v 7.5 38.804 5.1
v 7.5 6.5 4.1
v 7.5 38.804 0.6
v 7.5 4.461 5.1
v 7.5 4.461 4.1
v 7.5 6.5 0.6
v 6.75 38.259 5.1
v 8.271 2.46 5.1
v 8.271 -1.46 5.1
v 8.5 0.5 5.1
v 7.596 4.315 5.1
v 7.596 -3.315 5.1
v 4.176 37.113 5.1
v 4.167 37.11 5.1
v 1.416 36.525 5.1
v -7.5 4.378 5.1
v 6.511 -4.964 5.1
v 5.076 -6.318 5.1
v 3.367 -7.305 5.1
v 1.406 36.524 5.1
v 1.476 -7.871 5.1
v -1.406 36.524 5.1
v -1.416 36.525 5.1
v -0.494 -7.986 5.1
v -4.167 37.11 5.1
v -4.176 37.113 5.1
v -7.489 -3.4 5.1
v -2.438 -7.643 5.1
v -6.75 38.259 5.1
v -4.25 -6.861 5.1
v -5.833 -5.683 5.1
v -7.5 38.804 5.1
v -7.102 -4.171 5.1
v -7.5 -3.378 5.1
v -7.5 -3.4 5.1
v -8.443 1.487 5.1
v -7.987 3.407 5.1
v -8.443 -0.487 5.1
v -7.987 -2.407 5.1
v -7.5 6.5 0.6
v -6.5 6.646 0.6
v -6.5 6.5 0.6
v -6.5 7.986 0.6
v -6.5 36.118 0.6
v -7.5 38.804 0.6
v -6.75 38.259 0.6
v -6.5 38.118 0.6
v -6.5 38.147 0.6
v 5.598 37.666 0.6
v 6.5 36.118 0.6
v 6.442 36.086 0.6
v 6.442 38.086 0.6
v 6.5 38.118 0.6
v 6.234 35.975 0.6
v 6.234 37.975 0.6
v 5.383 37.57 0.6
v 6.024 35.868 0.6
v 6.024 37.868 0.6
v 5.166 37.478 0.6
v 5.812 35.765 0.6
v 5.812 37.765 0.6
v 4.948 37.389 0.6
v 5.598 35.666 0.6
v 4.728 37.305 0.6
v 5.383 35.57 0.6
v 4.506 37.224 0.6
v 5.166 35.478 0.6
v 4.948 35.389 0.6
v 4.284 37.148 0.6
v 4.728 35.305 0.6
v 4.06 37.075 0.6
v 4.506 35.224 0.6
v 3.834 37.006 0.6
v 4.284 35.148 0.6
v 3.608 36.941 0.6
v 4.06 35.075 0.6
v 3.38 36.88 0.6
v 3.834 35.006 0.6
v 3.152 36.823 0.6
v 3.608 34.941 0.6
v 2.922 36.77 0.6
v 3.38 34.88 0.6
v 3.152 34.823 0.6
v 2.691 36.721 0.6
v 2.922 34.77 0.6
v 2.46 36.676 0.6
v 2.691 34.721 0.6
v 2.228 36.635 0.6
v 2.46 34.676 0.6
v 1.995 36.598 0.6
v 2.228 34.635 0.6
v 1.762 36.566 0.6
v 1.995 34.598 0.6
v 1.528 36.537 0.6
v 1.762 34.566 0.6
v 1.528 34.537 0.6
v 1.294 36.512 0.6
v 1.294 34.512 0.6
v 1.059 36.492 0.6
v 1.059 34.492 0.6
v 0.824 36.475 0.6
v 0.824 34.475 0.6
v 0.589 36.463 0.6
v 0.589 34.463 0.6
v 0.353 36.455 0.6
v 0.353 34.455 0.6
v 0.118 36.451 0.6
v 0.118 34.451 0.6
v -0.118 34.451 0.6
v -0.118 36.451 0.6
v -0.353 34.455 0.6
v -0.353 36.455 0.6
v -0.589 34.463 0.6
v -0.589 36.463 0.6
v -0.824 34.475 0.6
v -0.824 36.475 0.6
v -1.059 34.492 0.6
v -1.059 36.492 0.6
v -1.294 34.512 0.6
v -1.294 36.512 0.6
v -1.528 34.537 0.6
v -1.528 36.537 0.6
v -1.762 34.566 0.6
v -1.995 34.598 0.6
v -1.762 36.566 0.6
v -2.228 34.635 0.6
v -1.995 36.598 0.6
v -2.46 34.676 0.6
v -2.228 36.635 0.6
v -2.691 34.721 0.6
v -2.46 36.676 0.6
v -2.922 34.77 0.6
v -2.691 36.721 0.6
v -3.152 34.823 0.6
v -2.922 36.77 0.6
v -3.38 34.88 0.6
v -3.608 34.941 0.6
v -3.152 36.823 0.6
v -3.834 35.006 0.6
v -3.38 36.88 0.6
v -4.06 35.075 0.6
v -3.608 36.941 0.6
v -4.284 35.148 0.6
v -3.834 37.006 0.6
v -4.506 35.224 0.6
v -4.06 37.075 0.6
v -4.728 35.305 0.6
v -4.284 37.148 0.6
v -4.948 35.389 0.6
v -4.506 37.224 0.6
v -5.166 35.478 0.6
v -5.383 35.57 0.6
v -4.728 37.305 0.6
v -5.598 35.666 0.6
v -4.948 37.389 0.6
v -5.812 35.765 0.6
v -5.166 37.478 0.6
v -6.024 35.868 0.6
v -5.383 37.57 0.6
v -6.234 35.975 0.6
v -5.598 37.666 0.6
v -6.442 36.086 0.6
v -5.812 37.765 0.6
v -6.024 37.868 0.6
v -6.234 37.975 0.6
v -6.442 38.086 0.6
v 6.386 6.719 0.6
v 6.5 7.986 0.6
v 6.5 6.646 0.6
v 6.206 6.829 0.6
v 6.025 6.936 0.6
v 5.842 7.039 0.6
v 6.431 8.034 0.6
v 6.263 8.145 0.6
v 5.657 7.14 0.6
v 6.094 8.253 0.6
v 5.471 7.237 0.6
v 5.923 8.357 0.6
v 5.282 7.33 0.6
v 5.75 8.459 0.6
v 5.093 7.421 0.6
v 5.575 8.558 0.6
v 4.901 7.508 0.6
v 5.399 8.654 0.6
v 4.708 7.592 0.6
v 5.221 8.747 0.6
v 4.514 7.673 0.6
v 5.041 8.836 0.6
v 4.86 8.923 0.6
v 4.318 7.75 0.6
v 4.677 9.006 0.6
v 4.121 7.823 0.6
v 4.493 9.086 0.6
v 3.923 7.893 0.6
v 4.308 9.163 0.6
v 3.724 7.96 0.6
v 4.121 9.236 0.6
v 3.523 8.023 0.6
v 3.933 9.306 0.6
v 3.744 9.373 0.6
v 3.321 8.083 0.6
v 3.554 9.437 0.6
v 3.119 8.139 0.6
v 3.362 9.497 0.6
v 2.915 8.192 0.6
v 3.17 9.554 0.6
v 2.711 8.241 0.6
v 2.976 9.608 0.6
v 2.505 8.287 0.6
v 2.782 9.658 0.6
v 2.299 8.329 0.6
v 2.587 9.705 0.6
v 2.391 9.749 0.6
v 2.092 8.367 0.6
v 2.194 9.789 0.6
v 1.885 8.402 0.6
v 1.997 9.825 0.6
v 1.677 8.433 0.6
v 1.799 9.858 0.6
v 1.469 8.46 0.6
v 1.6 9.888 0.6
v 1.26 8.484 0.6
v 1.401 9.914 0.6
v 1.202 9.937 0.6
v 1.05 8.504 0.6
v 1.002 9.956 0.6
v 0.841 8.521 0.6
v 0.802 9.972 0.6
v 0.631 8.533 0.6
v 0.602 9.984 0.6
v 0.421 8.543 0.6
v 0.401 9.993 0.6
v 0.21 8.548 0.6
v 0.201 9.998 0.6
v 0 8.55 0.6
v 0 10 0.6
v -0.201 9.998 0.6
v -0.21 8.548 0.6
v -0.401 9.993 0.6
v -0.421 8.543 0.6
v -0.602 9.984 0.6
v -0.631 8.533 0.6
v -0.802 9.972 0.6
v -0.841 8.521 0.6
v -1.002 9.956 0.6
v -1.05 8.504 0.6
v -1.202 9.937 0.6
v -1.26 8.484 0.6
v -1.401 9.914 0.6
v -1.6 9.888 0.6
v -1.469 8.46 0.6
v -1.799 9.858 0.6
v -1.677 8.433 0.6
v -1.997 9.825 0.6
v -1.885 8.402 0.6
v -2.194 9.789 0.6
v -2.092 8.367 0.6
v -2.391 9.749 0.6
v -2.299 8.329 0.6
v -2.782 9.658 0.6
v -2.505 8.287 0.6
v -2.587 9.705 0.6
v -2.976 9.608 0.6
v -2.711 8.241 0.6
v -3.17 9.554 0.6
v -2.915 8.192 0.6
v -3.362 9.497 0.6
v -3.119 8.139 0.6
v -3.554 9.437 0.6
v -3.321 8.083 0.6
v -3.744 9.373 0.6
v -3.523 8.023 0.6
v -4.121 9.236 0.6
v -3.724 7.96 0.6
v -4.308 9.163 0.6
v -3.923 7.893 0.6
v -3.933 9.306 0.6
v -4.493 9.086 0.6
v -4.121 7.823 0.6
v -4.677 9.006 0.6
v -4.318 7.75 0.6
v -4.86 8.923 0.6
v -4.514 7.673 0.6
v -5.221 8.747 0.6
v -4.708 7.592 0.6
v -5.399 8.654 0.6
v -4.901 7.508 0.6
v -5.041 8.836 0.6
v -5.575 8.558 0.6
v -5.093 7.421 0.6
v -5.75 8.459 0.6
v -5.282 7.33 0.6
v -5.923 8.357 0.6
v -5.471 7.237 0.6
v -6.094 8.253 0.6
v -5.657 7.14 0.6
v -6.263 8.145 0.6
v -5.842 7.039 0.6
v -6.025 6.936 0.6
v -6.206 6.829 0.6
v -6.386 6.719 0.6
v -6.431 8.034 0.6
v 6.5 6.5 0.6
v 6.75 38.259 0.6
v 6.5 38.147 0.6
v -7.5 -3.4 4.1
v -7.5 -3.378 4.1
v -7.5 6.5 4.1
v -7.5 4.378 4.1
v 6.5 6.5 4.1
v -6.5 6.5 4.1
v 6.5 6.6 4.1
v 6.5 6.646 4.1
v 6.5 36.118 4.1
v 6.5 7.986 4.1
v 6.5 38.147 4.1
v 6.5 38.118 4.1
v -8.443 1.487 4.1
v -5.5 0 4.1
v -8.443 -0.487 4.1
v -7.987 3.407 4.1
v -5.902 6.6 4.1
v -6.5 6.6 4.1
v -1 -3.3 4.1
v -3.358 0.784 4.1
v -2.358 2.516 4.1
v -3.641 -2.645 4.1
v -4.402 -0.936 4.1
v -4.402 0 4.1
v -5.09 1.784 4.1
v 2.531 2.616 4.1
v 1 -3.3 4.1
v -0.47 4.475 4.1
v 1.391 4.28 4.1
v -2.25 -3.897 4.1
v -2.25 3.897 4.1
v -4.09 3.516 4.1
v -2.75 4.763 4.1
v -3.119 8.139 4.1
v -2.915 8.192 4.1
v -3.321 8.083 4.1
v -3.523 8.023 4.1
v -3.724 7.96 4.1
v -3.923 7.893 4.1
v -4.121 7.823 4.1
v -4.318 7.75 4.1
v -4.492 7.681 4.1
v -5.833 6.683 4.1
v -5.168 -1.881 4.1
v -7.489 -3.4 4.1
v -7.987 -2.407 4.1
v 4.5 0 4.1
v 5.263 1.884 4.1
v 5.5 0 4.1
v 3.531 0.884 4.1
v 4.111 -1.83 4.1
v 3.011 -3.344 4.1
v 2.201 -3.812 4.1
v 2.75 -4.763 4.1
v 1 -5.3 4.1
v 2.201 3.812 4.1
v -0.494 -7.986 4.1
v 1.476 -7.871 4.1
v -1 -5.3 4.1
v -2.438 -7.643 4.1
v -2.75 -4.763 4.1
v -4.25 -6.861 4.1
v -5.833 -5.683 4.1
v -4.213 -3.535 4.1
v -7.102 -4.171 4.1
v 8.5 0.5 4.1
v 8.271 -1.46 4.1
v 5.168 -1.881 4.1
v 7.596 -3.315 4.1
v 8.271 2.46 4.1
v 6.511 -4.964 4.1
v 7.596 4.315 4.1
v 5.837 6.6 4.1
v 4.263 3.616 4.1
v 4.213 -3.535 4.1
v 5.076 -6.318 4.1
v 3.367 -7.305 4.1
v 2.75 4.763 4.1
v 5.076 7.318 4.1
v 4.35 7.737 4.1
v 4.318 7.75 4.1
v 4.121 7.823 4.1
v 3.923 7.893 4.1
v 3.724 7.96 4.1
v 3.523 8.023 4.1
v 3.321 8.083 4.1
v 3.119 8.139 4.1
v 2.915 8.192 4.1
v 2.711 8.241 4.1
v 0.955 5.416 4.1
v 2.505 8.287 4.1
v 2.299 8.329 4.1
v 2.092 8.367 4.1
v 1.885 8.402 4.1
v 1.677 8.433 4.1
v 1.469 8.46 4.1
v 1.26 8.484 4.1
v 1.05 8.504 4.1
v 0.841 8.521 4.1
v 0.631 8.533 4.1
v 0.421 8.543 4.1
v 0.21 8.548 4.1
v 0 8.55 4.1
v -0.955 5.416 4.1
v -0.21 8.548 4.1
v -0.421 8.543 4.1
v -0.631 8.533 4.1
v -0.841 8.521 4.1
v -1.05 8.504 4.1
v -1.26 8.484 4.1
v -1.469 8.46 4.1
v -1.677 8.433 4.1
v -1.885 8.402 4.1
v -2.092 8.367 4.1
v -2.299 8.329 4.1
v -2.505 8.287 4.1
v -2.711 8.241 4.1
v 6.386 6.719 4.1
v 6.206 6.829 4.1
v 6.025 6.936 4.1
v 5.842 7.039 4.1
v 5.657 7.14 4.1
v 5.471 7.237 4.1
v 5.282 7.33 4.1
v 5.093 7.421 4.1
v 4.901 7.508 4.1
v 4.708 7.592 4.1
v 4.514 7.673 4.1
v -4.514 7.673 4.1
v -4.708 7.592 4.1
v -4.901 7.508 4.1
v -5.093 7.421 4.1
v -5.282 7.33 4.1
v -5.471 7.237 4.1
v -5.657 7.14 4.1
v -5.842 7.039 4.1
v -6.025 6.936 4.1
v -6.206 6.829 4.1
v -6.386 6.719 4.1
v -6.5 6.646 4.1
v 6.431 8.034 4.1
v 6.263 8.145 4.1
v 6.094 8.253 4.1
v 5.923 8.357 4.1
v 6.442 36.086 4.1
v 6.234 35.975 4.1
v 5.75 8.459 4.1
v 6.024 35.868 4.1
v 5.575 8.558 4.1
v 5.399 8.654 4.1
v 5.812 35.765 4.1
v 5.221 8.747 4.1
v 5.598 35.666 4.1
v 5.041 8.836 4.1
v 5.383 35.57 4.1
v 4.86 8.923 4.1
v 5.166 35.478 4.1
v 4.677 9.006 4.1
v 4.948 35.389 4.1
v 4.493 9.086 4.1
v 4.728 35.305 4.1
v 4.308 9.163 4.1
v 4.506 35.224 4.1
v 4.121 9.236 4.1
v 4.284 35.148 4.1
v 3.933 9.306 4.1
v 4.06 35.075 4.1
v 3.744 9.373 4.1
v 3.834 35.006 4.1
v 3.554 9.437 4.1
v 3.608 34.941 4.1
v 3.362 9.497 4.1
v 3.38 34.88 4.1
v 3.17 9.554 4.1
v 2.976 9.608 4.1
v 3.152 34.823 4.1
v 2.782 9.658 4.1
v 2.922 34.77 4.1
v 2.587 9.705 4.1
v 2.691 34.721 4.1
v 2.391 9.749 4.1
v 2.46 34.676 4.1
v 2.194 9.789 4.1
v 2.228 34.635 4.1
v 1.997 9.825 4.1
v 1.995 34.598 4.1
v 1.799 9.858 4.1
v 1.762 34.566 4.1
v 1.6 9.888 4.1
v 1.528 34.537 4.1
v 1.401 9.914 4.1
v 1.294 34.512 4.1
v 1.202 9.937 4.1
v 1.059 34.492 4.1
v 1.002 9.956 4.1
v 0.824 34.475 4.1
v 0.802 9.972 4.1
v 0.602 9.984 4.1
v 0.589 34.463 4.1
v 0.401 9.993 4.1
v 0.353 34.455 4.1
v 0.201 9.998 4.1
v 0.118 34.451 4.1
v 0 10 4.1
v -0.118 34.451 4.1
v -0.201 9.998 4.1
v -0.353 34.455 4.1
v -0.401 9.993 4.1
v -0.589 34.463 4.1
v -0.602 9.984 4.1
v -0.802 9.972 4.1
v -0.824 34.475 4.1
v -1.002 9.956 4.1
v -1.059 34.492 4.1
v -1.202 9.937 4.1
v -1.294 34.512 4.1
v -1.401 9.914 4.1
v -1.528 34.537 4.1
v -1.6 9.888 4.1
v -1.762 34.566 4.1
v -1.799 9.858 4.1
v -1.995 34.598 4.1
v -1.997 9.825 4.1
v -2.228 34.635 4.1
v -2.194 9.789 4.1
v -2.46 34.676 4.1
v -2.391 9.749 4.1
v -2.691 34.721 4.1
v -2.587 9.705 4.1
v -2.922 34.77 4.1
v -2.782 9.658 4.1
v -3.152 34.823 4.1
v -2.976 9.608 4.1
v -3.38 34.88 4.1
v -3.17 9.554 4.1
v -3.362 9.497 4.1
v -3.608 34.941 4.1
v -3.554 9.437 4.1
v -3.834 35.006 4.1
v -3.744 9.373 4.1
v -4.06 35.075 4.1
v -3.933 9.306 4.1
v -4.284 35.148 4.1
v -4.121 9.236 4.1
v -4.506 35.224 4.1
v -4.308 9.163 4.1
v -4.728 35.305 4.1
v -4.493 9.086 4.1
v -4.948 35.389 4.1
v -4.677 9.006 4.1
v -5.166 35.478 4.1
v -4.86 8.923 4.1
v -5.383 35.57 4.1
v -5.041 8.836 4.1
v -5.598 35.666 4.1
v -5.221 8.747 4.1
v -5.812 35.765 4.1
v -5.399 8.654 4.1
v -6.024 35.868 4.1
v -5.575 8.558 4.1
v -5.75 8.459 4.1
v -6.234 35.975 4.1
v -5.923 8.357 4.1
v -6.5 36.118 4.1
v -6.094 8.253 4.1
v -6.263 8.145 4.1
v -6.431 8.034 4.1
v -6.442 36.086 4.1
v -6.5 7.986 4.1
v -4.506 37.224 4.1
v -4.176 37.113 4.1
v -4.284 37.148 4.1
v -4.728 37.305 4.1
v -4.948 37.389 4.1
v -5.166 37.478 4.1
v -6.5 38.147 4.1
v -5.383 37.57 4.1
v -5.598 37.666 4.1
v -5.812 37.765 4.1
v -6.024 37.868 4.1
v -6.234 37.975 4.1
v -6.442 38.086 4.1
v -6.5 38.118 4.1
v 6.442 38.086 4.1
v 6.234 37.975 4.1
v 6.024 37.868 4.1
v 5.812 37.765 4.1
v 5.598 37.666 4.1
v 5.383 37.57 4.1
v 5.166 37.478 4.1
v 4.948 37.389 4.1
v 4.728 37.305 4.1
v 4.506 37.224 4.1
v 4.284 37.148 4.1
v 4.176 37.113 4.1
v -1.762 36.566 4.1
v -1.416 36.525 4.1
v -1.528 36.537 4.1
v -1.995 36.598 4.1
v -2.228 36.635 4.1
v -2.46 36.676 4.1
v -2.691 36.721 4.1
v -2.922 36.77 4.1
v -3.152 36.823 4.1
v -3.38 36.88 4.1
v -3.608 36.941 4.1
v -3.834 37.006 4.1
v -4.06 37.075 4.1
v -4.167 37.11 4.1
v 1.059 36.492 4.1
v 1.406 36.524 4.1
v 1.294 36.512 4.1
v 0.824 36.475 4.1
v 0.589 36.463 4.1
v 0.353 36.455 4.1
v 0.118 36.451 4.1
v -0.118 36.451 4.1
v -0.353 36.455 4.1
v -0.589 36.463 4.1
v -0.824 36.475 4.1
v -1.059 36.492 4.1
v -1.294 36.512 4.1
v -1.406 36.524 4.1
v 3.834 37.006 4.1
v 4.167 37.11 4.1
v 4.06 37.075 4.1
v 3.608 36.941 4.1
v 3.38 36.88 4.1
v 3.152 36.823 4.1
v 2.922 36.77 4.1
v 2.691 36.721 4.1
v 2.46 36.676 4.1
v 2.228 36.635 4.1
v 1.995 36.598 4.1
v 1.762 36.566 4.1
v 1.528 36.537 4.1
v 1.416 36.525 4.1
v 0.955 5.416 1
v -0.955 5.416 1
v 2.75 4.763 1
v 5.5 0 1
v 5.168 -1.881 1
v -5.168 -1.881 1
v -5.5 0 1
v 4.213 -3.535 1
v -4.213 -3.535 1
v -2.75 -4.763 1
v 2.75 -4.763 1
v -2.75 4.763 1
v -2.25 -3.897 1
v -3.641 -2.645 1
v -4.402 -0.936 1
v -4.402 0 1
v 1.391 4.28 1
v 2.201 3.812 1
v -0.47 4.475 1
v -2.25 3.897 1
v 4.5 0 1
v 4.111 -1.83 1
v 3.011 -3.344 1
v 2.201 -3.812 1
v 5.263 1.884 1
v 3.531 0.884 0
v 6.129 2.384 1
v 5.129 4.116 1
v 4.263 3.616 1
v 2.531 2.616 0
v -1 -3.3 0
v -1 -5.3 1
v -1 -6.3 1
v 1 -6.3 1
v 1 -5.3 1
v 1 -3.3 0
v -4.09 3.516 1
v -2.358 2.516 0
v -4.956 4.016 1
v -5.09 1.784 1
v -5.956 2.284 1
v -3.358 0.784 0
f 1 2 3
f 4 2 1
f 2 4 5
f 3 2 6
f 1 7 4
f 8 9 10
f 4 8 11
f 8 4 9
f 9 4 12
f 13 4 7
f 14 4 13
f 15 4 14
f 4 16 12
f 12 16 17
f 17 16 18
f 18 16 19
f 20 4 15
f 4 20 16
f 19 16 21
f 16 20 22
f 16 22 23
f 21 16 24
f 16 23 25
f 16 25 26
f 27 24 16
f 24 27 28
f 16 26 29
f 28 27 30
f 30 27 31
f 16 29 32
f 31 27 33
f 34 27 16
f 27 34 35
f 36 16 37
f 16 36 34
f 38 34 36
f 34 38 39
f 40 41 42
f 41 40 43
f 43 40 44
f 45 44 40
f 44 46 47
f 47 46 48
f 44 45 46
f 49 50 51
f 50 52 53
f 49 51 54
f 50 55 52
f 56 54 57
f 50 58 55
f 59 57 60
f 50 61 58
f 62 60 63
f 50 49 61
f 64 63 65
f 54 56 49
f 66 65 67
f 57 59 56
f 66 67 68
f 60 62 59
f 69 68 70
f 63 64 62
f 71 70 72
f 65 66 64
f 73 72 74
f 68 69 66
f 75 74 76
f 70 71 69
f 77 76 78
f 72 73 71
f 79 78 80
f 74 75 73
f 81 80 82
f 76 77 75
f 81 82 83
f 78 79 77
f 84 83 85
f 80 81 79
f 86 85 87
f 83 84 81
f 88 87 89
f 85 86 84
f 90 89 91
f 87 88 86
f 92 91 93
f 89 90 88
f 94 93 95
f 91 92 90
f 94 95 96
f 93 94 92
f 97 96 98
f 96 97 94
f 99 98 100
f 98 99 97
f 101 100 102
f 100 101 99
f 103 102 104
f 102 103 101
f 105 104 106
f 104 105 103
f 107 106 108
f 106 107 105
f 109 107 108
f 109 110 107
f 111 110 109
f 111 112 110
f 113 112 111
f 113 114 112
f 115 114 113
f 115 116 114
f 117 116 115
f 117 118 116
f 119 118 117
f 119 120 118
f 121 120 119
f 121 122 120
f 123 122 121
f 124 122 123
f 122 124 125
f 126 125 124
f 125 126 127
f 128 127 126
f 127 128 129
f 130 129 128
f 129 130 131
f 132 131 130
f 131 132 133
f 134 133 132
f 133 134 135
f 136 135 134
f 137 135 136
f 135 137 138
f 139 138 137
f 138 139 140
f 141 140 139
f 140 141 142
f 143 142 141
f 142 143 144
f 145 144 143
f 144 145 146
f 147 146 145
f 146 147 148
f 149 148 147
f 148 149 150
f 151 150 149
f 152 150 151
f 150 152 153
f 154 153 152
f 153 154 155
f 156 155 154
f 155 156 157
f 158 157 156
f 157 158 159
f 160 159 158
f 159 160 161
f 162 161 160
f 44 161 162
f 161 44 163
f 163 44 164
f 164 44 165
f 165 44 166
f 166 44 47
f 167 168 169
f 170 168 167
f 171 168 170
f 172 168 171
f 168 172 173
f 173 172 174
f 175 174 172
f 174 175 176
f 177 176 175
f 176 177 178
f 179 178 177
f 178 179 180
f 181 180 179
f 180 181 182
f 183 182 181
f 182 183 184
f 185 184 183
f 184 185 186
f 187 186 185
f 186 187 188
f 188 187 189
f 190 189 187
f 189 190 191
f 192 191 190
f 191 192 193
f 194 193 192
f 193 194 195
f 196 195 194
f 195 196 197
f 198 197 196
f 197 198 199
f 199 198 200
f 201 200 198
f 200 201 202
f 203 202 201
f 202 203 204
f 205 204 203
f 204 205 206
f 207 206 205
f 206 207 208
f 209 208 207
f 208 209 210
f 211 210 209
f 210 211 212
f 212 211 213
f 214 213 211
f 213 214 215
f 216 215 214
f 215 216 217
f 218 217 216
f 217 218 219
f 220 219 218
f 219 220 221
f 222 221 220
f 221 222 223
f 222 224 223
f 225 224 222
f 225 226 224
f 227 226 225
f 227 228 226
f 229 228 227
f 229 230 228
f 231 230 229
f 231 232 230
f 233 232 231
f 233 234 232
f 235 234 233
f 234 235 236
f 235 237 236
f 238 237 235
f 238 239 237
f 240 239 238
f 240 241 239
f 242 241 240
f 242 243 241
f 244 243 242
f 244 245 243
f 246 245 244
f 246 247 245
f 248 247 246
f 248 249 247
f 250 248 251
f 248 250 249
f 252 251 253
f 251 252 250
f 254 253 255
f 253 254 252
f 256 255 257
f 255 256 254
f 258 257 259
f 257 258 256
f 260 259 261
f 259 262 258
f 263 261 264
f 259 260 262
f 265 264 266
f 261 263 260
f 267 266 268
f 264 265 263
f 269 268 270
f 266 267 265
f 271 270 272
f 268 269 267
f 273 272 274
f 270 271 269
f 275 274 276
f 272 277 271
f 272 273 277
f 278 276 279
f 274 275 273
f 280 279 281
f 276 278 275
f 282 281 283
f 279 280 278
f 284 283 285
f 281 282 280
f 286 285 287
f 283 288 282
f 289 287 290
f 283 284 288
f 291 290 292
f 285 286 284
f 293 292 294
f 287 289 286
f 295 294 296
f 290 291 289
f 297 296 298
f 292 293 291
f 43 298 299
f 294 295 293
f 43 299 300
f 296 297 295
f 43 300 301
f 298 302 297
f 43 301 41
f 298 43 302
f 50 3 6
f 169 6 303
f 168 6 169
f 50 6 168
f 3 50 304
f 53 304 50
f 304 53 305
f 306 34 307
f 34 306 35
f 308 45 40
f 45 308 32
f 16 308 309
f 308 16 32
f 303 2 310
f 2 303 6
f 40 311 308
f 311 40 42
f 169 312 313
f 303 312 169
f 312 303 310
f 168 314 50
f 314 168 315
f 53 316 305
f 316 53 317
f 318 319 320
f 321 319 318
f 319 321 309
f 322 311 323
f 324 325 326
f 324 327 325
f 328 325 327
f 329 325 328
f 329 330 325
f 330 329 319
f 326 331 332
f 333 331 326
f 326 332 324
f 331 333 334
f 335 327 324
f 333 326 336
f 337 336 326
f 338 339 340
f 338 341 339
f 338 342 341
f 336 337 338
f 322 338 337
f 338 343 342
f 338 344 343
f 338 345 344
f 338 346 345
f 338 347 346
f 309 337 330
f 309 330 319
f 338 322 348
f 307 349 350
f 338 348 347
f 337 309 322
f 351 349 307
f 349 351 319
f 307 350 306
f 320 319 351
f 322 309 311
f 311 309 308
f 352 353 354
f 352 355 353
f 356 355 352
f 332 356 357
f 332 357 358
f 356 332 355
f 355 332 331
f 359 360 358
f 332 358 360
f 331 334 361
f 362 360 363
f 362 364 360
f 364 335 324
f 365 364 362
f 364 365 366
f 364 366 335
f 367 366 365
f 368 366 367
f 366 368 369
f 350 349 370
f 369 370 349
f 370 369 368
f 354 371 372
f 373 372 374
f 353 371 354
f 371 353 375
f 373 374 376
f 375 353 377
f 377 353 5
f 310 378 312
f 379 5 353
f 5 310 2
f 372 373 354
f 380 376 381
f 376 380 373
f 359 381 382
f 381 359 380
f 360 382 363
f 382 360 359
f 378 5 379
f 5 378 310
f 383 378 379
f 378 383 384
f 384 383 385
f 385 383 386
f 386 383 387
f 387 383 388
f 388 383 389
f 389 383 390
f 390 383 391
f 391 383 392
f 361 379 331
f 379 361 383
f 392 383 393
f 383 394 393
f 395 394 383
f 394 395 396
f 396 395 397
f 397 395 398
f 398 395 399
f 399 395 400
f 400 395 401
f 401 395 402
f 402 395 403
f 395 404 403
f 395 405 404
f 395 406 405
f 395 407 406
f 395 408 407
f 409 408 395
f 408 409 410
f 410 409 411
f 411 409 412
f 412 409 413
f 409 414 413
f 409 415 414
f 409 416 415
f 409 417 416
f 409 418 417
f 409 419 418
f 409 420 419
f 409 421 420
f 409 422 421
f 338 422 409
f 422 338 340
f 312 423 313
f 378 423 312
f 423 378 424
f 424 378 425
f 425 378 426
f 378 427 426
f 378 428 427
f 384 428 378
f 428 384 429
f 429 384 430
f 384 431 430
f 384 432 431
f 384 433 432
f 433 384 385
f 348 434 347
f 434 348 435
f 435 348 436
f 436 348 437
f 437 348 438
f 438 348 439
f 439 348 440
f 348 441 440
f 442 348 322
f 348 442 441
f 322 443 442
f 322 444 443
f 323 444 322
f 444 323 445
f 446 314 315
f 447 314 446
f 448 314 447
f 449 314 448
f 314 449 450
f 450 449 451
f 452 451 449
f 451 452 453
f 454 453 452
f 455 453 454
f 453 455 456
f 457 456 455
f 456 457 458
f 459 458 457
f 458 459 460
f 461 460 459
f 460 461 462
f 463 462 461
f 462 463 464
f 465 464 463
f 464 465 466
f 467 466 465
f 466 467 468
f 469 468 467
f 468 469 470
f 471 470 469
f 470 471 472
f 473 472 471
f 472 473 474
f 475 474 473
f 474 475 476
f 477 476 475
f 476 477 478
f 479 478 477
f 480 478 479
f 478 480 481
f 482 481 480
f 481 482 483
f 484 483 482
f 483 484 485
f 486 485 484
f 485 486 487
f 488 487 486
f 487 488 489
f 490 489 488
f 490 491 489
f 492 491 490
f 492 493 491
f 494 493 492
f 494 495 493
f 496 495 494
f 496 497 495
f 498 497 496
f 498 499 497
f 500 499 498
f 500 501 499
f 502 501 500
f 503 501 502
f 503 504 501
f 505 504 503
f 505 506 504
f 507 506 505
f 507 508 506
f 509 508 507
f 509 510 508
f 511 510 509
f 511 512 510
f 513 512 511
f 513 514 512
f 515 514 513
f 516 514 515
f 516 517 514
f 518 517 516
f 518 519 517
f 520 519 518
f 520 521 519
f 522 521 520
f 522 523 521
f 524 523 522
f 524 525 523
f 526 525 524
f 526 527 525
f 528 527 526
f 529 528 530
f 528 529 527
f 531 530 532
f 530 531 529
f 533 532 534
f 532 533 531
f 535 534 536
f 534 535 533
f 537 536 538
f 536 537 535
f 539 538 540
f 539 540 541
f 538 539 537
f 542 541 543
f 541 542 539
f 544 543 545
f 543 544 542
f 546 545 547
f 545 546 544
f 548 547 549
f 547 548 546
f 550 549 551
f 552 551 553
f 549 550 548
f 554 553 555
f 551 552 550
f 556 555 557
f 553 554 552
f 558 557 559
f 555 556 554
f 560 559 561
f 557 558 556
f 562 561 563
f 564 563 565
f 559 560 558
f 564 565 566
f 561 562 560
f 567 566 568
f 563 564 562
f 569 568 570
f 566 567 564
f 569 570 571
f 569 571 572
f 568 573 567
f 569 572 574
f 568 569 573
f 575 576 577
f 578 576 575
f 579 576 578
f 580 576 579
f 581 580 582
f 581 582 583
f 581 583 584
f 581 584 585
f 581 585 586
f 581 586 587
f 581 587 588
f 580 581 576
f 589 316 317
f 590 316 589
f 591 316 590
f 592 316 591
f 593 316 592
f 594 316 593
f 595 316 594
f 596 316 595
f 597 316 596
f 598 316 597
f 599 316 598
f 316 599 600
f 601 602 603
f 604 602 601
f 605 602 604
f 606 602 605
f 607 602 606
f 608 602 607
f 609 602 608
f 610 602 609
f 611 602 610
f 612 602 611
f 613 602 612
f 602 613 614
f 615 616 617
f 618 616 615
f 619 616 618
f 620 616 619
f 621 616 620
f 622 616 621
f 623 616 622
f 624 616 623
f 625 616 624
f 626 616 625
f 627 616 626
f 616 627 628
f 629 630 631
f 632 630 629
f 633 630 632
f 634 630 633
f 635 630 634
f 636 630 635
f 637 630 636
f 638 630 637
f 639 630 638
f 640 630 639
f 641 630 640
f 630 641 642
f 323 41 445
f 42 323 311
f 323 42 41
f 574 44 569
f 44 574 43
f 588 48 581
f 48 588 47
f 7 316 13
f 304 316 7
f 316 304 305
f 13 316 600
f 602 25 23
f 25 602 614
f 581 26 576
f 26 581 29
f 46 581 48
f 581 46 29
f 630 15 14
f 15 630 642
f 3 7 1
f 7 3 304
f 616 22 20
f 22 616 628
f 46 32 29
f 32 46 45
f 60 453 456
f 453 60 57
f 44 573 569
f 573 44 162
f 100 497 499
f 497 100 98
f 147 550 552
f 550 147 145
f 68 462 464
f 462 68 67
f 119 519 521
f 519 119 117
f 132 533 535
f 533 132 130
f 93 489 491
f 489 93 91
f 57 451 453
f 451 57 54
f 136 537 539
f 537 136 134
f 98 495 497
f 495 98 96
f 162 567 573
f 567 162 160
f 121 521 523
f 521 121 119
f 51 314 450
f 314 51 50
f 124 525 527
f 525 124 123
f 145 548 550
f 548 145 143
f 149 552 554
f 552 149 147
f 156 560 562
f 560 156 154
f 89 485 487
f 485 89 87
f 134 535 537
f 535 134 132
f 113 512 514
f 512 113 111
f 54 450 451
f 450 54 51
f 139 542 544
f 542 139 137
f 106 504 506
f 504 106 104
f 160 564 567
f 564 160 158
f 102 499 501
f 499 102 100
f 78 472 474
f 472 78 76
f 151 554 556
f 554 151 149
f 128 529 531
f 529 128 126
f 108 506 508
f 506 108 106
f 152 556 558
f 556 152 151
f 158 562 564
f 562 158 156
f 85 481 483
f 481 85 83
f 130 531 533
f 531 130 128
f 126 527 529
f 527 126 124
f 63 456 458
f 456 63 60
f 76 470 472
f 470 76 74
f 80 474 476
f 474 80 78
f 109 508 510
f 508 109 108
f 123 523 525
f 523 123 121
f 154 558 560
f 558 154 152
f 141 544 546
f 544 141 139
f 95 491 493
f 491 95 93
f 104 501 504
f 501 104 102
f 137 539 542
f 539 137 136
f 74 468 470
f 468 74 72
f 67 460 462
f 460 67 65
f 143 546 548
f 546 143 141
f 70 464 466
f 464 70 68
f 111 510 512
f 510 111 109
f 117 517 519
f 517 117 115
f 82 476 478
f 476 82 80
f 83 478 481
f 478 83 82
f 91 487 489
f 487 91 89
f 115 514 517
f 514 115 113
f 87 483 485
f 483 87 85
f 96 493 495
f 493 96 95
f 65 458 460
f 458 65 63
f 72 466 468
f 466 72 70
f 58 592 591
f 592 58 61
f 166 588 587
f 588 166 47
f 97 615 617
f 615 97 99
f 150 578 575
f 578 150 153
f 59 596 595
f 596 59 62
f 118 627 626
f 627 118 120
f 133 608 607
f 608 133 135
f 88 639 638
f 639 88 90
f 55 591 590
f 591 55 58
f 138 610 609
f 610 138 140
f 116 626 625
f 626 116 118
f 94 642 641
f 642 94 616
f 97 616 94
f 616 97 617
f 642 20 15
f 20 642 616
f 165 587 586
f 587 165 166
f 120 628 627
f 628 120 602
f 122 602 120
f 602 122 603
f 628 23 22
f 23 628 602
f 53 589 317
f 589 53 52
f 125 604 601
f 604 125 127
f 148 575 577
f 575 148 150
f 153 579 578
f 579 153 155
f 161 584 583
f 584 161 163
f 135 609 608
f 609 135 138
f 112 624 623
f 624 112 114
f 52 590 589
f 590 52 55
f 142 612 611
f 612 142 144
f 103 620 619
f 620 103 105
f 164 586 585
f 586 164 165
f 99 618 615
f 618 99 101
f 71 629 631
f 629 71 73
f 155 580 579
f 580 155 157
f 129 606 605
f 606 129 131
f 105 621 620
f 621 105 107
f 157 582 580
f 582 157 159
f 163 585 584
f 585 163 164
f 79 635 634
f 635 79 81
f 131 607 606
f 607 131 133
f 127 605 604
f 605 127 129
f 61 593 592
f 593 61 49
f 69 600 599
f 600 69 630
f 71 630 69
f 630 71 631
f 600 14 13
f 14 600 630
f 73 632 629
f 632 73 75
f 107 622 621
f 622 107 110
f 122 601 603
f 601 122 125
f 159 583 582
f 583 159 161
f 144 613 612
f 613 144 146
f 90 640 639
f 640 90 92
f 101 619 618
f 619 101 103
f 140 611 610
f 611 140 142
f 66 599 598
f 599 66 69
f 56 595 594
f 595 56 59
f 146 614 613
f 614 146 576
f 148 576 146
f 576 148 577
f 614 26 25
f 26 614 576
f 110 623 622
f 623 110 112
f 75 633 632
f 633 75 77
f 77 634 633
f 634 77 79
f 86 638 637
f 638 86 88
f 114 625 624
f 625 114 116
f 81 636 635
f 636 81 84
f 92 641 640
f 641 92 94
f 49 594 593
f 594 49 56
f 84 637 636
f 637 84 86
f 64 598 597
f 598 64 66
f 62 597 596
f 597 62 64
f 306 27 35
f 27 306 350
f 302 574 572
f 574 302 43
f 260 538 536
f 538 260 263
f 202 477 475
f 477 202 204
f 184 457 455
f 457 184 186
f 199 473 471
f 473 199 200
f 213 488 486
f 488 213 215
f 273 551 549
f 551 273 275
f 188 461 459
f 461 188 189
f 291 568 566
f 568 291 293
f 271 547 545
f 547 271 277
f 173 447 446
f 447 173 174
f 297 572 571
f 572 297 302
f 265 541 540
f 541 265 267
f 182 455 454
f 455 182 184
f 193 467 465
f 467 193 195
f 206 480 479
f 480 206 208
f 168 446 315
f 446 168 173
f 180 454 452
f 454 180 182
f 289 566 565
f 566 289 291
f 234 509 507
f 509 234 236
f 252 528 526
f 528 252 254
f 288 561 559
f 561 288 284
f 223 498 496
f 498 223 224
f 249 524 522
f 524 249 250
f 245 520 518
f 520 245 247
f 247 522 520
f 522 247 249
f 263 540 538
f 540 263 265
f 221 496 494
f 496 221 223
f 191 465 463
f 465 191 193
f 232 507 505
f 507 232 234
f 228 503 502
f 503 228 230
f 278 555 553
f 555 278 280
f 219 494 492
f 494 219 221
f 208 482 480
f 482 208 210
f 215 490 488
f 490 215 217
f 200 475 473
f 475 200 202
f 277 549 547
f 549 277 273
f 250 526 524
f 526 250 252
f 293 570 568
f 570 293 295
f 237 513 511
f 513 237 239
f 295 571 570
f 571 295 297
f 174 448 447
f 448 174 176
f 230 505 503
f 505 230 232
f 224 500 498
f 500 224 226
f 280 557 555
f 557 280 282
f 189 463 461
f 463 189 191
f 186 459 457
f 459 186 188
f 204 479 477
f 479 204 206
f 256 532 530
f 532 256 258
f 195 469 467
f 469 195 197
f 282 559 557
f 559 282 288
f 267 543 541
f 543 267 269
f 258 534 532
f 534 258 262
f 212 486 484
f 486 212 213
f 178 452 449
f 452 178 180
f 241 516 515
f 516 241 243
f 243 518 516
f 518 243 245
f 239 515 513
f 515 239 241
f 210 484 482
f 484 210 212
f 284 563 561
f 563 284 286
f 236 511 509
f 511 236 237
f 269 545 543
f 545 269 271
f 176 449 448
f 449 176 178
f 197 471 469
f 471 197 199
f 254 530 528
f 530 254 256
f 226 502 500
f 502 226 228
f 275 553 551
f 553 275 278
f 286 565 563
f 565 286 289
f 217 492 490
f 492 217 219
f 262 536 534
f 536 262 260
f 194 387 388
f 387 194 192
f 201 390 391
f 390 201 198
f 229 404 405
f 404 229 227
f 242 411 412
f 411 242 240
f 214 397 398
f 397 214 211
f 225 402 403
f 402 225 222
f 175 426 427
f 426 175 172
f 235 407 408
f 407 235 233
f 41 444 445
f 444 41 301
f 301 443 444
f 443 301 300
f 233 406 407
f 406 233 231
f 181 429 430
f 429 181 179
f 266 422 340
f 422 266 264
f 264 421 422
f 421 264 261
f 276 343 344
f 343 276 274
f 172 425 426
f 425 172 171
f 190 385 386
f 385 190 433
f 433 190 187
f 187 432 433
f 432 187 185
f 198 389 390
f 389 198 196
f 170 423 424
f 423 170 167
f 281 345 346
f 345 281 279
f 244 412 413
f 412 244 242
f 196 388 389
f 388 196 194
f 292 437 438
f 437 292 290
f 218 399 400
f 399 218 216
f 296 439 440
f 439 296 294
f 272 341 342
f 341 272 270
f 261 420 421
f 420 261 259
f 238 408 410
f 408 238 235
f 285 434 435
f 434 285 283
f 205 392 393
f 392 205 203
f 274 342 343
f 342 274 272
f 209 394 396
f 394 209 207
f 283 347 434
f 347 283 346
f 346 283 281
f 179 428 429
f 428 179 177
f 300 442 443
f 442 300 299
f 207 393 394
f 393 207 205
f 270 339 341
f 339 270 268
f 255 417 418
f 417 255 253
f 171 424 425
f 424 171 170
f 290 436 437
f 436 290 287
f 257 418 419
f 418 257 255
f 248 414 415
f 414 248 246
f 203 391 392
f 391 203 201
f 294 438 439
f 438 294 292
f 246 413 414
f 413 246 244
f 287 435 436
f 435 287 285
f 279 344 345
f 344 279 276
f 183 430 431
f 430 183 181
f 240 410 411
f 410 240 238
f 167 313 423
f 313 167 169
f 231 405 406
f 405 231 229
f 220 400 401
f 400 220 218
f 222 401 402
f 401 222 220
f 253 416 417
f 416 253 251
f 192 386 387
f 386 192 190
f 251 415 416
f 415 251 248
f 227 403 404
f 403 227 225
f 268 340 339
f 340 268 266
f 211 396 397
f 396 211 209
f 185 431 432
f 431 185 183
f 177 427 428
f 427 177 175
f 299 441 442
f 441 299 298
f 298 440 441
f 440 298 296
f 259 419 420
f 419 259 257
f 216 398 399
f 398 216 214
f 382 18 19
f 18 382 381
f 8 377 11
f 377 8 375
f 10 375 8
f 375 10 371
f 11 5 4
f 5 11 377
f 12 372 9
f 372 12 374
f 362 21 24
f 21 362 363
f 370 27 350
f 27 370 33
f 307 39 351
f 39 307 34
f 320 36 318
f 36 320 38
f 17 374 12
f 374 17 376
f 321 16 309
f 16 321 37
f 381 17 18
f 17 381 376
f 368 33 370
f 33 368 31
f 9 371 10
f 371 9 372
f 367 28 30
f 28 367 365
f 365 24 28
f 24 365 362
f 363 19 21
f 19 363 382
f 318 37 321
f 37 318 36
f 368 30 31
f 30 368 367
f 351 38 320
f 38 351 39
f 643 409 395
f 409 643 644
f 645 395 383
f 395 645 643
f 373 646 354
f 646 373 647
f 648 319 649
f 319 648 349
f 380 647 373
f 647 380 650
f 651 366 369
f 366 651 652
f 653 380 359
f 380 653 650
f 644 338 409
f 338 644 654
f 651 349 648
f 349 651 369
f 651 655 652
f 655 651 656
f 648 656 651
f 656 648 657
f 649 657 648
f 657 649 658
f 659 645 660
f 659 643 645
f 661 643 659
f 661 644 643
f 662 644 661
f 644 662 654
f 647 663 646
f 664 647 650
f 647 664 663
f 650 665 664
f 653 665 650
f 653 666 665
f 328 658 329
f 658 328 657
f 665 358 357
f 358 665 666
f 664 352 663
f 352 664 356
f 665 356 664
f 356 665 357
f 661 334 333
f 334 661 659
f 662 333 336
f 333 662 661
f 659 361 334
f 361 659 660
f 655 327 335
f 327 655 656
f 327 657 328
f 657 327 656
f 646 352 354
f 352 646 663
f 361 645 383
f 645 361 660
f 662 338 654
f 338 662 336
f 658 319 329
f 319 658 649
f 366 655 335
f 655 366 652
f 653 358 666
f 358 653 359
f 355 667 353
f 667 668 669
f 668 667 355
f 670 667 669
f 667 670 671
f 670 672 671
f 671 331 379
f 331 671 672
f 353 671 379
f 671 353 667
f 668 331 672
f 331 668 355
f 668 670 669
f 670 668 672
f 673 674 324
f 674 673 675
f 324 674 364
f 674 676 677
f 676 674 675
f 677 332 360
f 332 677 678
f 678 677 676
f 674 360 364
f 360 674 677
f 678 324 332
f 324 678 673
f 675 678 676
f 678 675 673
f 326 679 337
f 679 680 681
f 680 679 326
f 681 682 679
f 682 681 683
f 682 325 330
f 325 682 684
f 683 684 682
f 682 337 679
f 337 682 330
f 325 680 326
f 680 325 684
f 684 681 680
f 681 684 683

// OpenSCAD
// file: Movement_Ruler_lib.scad
function get_movement_ruler_width() = 15;
function get_movement_1_bottom_ruler_length() = 30;
function get_movement_1_top_ruler_length() = 34;

function get_movement_ruler_height() = 4.5;
function get_movement_ruler_pocket_depth() = 3.5;

function get_pivot_outer_rad() = 8.5;
function get_pivot_inner_rad() = 11/2;
function get_pivot_second_inner_rad() = 13/2;

function get_ruler_ridge_length() = 2;

function get_bottom_ruler_indent() = 0.5;

function get_pivot_second_inner_bottom_offset() = 1.5;

function get_miniture_base_rad() = 27/2;

module circle_slice(rad = get_miniture_base_rad(), ang = 60){
    radius = rad;
    angle = ang;   // degrees

    polygon(points = concat(
        [[0,0]],
        [ for (a = [0:1:angle])
            [ radius * cos(a), radius * sin(a) ]
        ]
    ));
}
// main file
use <Movement_Ruler_lib.scad>;
movement_ruler_width = get_movement_ruler_width();
movement_ruler_length = get_movement_1_top_ruler_length(); //should be 32

movement_ruler_height = get_movement_ruler_height();
movement_ruler_pocket_depth = get_movement_ruler_pocket_depth();

pivot_outer_rad = get_pivot_outer_rad();
pivot_inner_rad = get_pivot_inner_rad();
pivot_second_inner_rad = get_pivot_second_inner_rad();

ruler_ridge_length = get_ruler_ridge_length();

bottom_ruler_indent = get_bottom_ruler_indent();

pivot_second_inner_bottom_offset = get_pivot_second_inner_bottom_offset();

miniture_base_rad = get_miniture_base_rad();

bottom_jut_length = pivot_outer_rad*2;
bottom_jut_length_straight = bottom_jut_length-7;

bottom_inner_most_rad = 9/2;

clip_cube_depth=2;
clip_cube_width=2;
clip_cube_height=movement_ruler_pocket_depth;

module pie_slice(){
    radius = 16;
    angle = 60;   // degrees

    polygon(points = concat(
        [[0,0]],
        [ for (a = [0:1:angle])
            [ radius * cos(a), radius * sin(a) ]
        ]
    ));
}



module create_clip(){  
    
    translate([0,0,0.5])
    union(){
        translate([0,0,0.5])cube([clip_cube_width, clip_cube_depth, movement_ruler_pocket_depth]);
        translate([clip_cube_width,0,0.5])rotate([-90,0,90])linear_extrude(clip_cube_width)polygon(points=[
        [0, 0],      // right angle corner
        [clip_cube_depth+1, 0],     // base
        [0, 1]      // height
        ]);
    }
}

//top ruler piece
translate([0,bottom_jut_length/2,bottom_ruler_indent+0.1]){
difference(){
    translate([-movement_ruler_width/2,-2,0]){
        difference(){
            cube([ movement_ruler_width, movement_ruler_length, movement_ruler_height]);
            //Bottom large indent
            translate([1,-.01,-1])cube([movement_ruler_width-ruler_ridge_length, movement_ruler_length+0.2, movement_ruler_pocket_depth+1]);
            //cut circle for miniature base
            translate([movement_ruler_width/2,movement_ruler_length+(miniture_base_rad*.7),-1])cylinder(h=movement_ruler_height+2,r=miniture_base_rad);        
            }
            //round edge for miniature base
            
            //translate([movement_ruler_width/2,movement_ruler_length+(miniture_base_rad*0.7)-2,-1])cylinder(h=movement_ruler_height+2,r=miniture_base_rad); //translate([movement_ruler_width/2,movement_ruler_length+(miniture_base_rad*0.7)-2,-2])cylinder(h=movement_ruler_height+4,r=miniture_base_rad*0.85);
            difference(){
                translate([movement_ruler_width/2,movement_ruler_length+(miniture_base_rad*0.7)-2,0])rotate([0,0,-123.5])linear_extrude(movement_ruler_height)circle_slice(rad=miniture_base_rad,ang=67);
                translate([movement_ruler_width/2,movement_ruler_length+(miniture_base_rad*0.7),-1.9])rotate([0,0,-123.5])linear_extrude(movement_ruler_height+2)circle_slice(rad=miniture_base_rad,ang=67);
            }
            
            
         //top shallow indent for pivot piece
            translate([0,-(bottom_jut_length_straight-0.1),movement_ruler_height-(movement_ruler_height-movement_ruler_pocket_depth)])cube([movement_ruler_width, bottom_jut_length_straight, movement_ruler_height-movement_ruler_pocket_depth]);   
        }  
    }
    pivot_cutout_outside = pivot_outer_rad+2.5;
    pivot_cutout_inside = pivot_cutout_outside-2;
    difference(){
        translate([0,-pivot_cutout_outside+1,0])rotate([0,0,50])linear_extrude(movement_ruler_height)circle_slice(rad=pivot_cutout_outside+0.5, ang=80); 
      translate([0,-pivot_cutout_outside-1,-2])rotate([0,0,50])linear_extrude(movement_ruler_height+2)circle_slice(rad=pivot_cutout_outside+1.05, ang=80);
       
    }
   
   //translate([0,-pivot_outer_rad+0.5,-2.1])cylinder(h=movement_ruler_height+1,r=pivot_cutout_inside); //translate([-pivot_cutout_outside,-pivot_cutout_outside-pivot_outer_rad-(pivot_outer_rad/3-0.2),-2])cube([pivot_cutout_outside*2, pivot_cutout_outside*2, movement_ruler_height+1]);
    
    translate([0,-pivot_outer_rad+0.5,movement_ruler_height-1])cylinder(h=1,r=pivot_outer_rad);
}


difference(){
    
    translate([0,0,-0.1])cylinder(h=movement_ruler_height,r=pivot_inner_rad);
    
    translate([0,0,-movement_ruler_pocket_depth])cylinder(h=movement_ruler_height,r=pivot_inner_rad+0.1);
    
    translate([0,0,-0.2])cylinder(h=movement_ruler_height,r=bottom_inner_most_rad);
    
    translate([0,0,-1])linear_extrude(movement_ruler_height+1)pie_slice();
    rotate(120)translate([0,0,-1])linear_extrude(movement_ruler_height+1)pie_slice();
    rotate(240)translate([0,0,-1])linear_extrude(movement_ruler_height+1)pie_slice();
    
}
rotate([0,0,-60])translate([-clip_cube_width/2,bottom_inner_most_rad-clip_cube_depth+1,0])create_clip();
rotate([0,0,-180])translate([-clip_cube_width/2,bottom_inner_most_rad-clip_cube_depth+1-0.2,0])create_clip();
rotate([0,0,60])translate([-clip_cube_width/2,bottom_inner_most_rad-clip_cube_depth+1-0.2,0])create_clip();


//translate([0,movement_ruler_length+(miniture_base_rad*1.3),0])cylinder(h=movement_ruler_height,r=miniture_base_rad);
